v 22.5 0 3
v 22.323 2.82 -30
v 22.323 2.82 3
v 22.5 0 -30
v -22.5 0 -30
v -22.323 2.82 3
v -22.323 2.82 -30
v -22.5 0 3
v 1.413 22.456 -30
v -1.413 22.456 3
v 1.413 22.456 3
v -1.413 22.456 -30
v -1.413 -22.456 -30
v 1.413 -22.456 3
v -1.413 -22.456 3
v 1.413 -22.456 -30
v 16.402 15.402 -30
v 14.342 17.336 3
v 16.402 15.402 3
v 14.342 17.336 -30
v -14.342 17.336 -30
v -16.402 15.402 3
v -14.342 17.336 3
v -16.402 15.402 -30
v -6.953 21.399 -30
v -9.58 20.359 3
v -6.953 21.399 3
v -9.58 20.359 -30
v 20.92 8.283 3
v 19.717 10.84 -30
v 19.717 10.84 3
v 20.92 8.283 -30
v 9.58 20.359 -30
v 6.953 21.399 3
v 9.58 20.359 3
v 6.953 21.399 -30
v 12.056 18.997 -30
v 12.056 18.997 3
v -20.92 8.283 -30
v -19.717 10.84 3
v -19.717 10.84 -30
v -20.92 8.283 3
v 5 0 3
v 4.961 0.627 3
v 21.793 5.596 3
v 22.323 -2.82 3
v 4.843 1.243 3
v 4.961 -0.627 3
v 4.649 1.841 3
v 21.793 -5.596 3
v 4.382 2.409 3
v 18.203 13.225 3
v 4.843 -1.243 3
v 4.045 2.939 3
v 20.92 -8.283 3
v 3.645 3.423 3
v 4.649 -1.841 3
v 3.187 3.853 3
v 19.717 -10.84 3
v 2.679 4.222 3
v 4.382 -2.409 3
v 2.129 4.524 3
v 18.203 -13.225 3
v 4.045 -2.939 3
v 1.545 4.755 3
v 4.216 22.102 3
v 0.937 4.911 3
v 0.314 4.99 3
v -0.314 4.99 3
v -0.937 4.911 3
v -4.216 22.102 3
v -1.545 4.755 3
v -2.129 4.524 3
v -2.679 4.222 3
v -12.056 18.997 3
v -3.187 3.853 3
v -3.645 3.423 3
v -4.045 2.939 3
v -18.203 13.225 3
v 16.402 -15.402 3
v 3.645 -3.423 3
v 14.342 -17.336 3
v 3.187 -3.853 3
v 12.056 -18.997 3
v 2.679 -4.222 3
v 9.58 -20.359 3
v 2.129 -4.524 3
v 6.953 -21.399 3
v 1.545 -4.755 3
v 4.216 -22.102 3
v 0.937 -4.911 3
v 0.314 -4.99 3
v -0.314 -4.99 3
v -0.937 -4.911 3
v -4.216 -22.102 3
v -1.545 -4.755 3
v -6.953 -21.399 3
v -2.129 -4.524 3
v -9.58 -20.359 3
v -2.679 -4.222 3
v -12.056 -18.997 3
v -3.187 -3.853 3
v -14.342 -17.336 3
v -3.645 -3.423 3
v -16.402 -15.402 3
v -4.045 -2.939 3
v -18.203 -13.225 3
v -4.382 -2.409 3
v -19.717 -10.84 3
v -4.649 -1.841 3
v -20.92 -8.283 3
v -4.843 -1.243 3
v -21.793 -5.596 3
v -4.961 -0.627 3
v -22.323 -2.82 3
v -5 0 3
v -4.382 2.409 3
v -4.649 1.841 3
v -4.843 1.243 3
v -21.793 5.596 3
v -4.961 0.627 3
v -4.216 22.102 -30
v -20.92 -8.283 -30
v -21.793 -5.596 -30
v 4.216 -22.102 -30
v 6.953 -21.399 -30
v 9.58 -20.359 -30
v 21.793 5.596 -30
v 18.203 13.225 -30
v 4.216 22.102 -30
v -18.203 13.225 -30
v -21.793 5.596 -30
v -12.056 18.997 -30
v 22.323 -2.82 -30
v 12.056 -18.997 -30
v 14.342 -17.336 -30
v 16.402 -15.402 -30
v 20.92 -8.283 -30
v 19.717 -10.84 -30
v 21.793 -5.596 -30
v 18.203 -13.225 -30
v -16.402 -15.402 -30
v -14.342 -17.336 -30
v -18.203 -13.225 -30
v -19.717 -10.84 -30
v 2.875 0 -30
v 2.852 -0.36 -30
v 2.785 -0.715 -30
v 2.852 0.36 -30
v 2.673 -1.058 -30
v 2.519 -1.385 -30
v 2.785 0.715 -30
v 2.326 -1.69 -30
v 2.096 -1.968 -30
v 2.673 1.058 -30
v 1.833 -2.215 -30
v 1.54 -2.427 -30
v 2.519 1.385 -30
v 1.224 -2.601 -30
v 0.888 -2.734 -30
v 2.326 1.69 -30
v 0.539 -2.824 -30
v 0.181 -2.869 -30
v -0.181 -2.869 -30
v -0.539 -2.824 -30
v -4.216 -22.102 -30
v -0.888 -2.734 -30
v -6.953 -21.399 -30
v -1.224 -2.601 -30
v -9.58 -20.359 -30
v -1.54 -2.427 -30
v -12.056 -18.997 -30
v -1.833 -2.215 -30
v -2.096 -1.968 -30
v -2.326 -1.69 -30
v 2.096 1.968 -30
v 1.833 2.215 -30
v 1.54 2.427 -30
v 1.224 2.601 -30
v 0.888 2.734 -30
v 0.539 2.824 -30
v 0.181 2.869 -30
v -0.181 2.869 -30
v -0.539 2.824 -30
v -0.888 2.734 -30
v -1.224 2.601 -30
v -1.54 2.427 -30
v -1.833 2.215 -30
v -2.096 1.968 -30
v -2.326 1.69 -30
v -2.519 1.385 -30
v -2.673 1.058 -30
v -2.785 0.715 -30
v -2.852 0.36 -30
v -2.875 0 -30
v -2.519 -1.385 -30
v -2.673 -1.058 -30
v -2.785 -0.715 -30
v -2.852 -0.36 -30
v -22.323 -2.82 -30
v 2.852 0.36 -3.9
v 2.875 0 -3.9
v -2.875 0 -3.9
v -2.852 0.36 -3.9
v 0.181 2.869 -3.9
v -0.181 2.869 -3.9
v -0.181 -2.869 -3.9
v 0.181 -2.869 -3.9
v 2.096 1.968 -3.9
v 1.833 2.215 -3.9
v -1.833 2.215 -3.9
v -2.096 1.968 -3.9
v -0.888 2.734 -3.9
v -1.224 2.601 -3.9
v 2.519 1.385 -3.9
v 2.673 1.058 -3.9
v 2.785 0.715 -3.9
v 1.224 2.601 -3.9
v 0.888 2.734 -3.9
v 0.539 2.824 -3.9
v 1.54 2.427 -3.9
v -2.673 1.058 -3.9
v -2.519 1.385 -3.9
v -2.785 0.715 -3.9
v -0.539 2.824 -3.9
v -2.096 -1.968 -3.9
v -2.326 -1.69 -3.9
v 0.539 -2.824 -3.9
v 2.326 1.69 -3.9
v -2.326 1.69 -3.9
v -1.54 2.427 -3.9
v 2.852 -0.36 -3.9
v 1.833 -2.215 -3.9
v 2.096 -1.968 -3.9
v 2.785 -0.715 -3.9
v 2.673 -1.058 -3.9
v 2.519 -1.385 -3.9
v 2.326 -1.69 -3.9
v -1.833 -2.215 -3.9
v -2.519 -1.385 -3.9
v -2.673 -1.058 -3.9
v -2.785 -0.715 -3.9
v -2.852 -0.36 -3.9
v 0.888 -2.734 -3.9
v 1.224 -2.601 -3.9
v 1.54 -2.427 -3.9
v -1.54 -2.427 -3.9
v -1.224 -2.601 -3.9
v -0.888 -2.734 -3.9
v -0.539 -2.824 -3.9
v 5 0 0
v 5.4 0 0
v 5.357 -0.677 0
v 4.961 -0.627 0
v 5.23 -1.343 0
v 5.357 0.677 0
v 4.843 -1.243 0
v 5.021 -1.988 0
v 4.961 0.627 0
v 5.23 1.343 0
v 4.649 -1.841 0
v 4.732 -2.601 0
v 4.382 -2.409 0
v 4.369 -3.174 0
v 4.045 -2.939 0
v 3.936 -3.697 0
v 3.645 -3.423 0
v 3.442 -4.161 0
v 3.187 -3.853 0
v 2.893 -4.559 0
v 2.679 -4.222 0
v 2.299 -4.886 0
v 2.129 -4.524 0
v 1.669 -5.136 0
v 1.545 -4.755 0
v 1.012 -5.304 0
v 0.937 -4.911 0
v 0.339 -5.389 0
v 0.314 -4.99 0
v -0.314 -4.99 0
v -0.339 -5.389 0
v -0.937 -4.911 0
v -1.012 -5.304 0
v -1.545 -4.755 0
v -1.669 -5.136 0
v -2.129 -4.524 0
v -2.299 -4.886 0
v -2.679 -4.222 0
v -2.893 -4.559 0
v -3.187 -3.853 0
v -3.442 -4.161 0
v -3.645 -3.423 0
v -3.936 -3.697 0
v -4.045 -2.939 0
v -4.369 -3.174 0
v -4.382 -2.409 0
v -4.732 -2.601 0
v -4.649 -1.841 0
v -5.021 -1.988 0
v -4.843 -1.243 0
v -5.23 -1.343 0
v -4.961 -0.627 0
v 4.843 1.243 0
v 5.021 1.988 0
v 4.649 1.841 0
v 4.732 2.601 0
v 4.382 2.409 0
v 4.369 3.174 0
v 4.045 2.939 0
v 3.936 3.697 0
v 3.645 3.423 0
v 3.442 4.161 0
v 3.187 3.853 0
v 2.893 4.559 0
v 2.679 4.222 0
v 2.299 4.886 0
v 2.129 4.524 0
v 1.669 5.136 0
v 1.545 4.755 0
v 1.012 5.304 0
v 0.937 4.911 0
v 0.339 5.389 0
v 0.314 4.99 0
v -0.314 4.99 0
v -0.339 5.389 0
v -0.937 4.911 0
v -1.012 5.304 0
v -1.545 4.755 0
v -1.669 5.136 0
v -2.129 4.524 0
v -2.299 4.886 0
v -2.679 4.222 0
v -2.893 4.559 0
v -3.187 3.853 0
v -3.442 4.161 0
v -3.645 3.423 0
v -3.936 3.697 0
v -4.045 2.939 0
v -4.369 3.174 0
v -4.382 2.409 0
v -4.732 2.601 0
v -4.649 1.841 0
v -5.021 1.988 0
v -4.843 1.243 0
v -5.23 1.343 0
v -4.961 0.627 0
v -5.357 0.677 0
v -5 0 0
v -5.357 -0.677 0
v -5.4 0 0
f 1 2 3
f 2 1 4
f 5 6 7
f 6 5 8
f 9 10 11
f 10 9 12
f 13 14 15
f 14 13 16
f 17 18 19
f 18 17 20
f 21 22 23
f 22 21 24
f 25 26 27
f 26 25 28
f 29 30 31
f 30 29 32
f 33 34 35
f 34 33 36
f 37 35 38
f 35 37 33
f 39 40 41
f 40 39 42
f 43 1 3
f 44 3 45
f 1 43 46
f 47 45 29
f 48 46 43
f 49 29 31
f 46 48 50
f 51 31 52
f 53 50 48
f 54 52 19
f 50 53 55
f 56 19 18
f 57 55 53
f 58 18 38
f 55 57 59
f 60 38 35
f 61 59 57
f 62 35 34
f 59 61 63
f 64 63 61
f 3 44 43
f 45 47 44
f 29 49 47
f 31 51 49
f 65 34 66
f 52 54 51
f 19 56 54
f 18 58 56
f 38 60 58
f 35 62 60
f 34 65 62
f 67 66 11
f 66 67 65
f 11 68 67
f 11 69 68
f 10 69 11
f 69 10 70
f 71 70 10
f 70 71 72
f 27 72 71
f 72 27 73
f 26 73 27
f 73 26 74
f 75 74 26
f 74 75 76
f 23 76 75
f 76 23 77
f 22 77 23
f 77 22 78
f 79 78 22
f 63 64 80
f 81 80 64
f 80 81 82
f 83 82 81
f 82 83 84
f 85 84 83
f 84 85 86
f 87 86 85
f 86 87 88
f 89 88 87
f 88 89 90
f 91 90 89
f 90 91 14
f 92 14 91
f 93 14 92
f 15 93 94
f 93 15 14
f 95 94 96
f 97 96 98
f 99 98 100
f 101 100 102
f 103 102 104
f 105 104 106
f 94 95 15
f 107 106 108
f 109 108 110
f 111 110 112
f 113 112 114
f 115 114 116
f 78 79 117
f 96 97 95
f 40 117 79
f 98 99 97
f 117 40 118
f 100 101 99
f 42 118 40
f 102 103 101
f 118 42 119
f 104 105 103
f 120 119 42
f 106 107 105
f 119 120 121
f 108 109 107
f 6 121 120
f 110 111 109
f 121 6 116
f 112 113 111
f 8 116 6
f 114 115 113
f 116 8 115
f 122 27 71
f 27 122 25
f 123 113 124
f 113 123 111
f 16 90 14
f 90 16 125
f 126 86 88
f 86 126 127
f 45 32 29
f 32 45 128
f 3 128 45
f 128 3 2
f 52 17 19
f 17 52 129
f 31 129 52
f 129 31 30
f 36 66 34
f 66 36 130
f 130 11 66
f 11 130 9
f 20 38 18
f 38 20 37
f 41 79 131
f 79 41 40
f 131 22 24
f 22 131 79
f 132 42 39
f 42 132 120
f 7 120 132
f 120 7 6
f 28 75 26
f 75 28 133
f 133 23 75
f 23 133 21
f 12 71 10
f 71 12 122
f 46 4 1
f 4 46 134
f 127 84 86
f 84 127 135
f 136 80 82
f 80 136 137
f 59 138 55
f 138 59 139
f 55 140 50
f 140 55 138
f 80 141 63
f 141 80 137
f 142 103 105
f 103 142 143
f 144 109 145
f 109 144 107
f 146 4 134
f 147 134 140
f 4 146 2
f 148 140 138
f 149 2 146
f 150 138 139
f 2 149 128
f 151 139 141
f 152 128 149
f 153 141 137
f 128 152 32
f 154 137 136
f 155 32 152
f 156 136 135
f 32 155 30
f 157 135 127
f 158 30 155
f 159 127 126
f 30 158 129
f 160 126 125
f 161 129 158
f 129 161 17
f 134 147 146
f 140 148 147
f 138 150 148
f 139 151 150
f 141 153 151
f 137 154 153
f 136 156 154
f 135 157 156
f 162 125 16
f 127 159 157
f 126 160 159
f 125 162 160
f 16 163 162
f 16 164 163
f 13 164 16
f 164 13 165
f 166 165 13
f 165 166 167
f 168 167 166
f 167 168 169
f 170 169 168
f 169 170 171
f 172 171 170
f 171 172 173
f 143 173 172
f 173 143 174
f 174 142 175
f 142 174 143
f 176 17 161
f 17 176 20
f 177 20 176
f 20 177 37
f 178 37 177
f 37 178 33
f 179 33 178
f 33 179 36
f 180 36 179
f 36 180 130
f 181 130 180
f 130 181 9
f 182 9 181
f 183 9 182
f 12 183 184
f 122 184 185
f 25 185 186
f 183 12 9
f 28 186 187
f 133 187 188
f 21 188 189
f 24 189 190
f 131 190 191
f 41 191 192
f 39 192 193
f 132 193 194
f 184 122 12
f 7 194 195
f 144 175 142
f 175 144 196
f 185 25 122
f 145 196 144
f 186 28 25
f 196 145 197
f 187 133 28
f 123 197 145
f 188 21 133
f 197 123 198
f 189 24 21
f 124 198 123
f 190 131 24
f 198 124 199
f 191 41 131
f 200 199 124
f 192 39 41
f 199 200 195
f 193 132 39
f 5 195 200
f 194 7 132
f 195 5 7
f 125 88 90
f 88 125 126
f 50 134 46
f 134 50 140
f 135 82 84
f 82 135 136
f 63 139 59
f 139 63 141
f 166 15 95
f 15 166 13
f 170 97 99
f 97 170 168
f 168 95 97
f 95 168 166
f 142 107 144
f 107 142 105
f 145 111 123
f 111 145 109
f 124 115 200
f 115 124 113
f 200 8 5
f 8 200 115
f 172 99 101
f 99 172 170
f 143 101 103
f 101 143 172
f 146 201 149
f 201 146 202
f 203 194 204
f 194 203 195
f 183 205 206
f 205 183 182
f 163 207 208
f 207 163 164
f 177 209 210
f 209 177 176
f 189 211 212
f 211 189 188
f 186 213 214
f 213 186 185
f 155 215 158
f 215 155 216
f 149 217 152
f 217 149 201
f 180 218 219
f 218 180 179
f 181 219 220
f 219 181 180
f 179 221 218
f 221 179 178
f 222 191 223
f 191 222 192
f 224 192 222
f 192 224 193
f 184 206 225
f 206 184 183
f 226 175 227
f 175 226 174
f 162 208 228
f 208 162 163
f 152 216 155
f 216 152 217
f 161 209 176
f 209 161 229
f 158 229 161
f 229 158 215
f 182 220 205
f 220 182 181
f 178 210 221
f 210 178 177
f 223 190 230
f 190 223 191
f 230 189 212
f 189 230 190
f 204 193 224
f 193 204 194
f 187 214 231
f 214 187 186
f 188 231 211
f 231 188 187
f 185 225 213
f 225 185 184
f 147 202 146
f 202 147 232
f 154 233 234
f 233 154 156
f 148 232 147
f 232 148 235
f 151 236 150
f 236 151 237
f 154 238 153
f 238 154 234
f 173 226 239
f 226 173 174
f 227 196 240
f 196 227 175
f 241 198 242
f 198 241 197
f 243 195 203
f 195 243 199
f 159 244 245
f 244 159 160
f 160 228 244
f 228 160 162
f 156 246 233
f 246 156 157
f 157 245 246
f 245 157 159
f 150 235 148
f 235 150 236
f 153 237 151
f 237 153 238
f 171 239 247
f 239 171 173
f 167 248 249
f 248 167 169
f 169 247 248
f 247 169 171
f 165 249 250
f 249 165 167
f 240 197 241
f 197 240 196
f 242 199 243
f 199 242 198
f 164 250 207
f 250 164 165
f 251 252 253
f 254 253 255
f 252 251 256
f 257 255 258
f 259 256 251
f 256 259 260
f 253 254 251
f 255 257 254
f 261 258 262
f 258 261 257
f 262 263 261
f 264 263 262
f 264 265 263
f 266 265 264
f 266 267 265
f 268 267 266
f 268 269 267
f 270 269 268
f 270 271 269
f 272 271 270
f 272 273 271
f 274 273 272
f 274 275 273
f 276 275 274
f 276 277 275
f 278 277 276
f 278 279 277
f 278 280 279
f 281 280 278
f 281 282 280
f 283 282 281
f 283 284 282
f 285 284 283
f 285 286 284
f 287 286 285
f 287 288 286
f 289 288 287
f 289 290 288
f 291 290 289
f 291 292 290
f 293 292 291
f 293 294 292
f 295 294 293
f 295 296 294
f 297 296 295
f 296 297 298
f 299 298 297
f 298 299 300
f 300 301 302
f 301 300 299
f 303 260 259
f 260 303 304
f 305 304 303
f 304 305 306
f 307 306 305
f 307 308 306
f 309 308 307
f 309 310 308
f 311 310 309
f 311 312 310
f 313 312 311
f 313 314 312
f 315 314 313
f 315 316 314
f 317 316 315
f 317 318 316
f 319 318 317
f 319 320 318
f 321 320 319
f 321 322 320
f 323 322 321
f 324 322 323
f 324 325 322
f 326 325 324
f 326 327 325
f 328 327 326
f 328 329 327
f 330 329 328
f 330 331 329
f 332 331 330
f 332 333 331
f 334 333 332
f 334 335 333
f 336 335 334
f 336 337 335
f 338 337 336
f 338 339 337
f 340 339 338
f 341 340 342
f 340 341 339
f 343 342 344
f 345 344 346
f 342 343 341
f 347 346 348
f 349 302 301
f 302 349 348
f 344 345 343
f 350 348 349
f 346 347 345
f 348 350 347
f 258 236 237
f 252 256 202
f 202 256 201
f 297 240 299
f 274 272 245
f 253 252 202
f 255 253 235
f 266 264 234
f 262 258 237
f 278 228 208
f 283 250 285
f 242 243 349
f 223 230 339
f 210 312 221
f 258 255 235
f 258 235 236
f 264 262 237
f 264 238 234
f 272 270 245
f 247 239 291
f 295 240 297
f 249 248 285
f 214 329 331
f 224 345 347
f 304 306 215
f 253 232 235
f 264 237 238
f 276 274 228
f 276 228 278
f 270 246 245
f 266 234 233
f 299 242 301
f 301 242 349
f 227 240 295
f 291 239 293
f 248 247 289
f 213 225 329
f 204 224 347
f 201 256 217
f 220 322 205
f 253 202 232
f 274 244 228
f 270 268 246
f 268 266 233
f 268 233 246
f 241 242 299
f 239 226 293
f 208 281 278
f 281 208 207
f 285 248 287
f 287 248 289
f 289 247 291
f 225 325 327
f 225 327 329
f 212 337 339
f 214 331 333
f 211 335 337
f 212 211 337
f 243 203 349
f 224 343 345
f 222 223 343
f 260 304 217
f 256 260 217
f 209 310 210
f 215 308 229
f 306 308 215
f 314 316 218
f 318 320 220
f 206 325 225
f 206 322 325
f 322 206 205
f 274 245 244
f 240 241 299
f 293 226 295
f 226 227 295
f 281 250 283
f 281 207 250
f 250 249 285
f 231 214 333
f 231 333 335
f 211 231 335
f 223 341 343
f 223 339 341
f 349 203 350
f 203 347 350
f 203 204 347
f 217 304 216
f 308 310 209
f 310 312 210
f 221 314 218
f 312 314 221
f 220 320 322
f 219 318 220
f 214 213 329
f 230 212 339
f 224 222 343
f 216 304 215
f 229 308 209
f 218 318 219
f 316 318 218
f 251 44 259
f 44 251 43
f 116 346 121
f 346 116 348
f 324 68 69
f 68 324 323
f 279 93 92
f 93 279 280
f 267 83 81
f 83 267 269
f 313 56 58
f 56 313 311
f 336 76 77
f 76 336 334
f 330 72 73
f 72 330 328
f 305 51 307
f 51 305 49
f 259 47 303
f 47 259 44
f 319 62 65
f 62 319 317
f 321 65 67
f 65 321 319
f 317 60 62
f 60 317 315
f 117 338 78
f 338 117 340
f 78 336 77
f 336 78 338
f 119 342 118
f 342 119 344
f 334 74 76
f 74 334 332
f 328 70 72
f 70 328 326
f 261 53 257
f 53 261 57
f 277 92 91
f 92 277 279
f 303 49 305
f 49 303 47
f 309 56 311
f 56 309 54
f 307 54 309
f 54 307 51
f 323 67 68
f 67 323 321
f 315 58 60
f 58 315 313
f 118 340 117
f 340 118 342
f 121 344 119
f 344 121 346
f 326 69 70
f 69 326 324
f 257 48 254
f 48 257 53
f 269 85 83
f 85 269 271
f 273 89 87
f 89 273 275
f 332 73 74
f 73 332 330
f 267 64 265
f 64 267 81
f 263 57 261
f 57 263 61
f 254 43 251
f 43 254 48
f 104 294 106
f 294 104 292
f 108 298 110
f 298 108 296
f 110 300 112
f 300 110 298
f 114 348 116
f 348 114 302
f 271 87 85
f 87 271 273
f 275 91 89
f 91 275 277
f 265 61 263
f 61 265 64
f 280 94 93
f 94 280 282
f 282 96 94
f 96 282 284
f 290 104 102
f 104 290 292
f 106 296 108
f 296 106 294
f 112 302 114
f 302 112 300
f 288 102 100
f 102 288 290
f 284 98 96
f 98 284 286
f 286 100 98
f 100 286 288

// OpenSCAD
$fn = 50;

difference() {
	union() {
		translate(v = [0, 0, -30.0]) {
			cylinder(h = 33, r = 22.5);
		}
		#translate(v = [0, 0, -33.0]) {
			cylinder(h = 33, r = 2.875);
		}
	}
	union() {
		translate(v = [0, 0, 0]) {
			rotate(a = [0, 0, 0]) {
				difference() {
					union() {
						translate(v = [0, 0, -33.0]) {
							cylinder(h = 33, r = 2.6);
						}
						translate(v = [0, 0, -3.9]) {
							cylinder(h = 3.9, r1 = 2.875, r2 = 5.4);
						}
						translate(v = [0, 0, -33.0]) {
							cylinder(h = 33, r = 2.875);
						}
						translate(v = [0, 0, -33.0]) {
							cylinder(h = 33, r = 2.6);
						}
					}
					union();
				}
			}
		}
		#cylinder(h = 3, r = 5.0);
	}
}
